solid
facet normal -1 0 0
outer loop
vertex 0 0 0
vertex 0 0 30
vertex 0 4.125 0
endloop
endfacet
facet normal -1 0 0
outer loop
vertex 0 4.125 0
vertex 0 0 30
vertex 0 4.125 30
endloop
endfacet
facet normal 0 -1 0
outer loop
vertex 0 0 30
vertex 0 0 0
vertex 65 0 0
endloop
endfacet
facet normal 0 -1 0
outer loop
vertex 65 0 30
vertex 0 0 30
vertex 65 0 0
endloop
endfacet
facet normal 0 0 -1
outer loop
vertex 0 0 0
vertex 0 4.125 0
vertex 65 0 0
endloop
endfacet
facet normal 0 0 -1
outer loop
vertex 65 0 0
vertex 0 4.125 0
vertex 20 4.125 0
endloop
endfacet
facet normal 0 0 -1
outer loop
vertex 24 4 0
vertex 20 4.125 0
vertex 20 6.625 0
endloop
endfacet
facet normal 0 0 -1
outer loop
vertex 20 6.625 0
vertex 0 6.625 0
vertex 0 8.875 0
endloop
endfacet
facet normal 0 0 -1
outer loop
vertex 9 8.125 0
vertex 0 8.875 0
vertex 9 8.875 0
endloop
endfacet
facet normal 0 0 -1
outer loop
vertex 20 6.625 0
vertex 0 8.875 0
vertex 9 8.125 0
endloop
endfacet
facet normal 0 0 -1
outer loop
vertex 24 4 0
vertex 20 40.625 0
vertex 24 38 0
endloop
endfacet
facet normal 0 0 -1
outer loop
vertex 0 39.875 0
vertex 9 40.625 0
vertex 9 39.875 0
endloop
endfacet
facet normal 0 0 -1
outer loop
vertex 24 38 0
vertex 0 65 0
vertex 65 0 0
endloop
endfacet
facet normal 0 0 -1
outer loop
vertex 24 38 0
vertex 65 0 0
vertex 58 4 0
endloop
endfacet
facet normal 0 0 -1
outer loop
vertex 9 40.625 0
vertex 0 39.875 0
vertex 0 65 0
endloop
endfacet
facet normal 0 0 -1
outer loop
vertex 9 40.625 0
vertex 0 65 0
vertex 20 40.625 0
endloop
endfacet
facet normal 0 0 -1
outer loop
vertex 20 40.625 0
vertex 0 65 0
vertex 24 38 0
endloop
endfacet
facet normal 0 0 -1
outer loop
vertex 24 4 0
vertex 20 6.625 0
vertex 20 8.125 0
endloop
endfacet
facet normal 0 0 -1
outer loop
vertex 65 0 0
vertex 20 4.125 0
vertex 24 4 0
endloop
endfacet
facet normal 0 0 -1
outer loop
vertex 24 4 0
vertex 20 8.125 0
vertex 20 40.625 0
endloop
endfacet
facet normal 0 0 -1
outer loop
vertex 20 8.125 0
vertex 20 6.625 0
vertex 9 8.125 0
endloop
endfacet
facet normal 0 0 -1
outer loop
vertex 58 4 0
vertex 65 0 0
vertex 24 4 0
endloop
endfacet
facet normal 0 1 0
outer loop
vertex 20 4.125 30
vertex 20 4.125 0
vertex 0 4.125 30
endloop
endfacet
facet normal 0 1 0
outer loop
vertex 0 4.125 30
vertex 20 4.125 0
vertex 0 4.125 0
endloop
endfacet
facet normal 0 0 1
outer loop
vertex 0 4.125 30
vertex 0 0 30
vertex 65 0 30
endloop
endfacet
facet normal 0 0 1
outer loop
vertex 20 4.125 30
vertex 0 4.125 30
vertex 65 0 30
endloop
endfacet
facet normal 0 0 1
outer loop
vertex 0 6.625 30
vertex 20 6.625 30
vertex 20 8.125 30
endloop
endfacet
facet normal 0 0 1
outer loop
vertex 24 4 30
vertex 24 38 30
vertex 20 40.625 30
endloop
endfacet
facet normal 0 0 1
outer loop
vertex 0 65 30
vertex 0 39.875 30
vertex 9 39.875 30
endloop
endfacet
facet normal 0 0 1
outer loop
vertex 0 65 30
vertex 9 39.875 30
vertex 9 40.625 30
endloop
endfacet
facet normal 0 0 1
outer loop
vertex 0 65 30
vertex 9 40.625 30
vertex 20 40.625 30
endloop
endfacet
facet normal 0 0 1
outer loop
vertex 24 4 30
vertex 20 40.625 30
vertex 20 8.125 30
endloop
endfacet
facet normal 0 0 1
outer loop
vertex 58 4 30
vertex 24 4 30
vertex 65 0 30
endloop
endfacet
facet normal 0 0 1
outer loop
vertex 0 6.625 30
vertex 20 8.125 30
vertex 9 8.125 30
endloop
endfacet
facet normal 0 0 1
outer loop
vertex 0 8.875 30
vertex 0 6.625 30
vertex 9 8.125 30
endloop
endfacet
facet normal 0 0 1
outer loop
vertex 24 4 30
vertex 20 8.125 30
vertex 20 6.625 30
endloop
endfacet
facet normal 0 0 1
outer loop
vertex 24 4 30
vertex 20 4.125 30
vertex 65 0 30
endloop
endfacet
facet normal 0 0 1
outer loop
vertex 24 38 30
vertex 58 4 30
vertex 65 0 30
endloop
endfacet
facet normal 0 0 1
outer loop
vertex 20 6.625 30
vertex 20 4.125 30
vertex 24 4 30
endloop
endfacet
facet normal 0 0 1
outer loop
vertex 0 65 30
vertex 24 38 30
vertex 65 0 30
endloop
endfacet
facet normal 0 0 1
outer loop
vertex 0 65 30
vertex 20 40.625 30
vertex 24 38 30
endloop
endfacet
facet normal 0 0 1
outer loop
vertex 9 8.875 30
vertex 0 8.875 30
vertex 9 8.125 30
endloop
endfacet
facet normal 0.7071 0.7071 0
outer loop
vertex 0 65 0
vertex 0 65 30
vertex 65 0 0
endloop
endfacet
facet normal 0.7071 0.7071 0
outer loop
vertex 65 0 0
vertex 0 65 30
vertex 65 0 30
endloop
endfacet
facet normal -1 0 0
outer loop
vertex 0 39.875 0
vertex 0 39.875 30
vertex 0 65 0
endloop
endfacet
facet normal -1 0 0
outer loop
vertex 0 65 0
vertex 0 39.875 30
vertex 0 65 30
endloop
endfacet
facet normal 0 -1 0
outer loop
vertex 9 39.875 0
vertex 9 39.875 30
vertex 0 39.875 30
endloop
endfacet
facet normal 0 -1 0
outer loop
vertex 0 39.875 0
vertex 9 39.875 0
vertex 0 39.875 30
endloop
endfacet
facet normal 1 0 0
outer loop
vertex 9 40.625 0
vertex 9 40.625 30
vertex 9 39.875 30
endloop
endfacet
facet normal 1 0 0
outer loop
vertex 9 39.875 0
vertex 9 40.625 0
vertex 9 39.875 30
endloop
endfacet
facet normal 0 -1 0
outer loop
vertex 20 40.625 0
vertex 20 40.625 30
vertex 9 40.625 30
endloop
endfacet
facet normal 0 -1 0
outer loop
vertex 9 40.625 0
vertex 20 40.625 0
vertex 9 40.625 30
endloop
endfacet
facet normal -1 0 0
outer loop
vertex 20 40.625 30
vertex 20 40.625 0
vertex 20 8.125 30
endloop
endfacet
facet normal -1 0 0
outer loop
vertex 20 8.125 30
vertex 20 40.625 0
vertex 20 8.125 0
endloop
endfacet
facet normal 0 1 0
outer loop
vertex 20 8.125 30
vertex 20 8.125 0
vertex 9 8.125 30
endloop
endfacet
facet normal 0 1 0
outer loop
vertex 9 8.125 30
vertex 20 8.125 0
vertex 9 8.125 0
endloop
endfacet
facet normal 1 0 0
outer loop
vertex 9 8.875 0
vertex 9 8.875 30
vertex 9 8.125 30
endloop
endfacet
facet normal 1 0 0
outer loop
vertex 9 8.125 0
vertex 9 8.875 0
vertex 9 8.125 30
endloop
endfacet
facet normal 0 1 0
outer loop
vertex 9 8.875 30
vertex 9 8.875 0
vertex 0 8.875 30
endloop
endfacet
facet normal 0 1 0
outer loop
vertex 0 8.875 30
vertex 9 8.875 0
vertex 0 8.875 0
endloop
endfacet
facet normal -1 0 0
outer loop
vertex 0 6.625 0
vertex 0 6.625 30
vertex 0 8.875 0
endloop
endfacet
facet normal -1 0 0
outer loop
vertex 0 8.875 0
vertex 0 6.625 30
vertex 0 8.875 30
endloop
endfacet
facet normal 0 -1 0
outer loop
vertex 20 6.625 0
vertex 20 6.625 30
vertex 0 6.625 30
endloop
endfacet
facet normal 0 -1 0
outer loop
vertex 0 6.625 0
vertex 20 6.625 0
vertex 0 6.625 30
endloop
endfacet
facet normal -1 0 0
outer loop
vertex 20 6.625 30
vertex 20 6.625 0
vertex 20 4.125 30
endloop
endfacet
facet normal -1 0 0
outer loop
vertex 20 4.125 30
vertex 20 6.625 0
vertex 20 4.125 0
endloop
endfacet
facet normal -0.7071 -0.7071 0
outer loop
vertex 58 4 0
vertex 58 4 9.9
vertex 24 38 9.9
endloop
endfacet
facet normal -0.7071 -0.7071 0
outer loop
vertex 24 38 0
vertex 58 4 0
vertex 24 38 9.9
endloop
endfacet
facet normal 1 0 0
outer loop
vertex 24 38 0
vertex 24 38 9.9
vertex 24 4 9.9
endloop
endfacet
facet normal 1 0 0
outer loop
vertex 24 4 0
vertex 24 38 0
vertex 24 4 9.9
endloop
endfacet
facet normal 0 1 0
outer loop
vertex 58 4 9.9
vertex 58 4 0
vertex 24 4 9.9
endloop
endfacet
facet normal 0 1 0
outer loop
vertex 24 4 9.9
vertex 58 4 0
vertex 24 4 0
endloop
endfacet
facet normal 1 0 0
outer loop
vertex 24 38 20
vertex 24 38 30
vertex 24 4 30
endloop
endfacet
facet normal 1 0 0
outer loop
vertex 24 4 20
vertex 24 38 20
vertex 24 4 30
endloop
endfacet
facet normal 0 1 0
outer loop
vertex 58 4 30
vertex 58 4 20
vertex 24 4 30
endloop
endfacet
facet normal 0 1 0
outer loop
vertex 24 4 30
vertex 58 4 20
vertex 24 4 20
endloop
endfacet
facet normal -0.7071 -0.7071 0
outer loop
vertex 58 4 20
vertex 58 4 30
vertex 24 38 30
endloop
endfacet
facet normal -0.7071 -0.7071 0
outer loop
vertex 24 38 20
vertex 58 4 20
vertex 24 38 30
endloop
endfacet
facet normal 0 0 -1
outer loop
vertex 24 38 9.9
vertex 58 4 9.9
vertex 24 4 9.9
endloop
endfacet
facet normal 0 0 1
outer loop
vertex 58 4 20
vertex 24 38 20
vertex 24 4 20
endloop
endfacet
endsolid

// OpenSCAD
epaisseur = 30;
petite_largeur = 31;
grande_largeur = 32.5;
hauteur = 30;

difference(){
	color("red") support();
	translate([hauteur*2/3,grande_largeur/4+grande_largeur/2,epaisseur/2]) rotate([0,0,90]) color("cyan") profile();
	translate([-hauteur*1/3,grande_largeur/4-4,0]) color("green") cube([hauteur,2.5,epaisseur*2]);
translate([24,4,-0.1]) creux();
translate([24,4,epaisseur*2/3]) creux();
}

module profile(){
	translate([0,5.5,0]) cube([grande_largeur,11,epaisseur*2], center=true);
	translate([0,14.5,0]) cube([petite_largeur,20,epaisseur*2], center=true);
}

module support ()
{
	demie_longueur = grande_largeur;
	longueur = demie_longueur*2;
	
  polyhedron
  (
		points=[[0,0,0], [0,longueur,0], [longueur,0,0], [longueur,0,epaisseur], 
[0,0,epaisseur], [0,longueur,epaisseur], [longueur,0,epaisseur]],  
		triangles=[[0,2,1],  // face avant
             [0,4,2],[4,3,2],  // face gauche
             [0,1,4],[4,1,5],  // face droite
             [3,4,5],  // face arrière
             [1,2,5],[2,3,5]]  // bas
  		);
}

module creux ()
{
	demie_longueur = 17;
	longueur = demie_longueur*2;
	
  polyhedron
  (
		points=[[0,0,0], [0,longueur,0], [longueur,0,0], [longueur,0,epaisseur/3], 
[0,0,epaisseur/3], [0,longueur,epaisseur/3], [longueur,0,epaisseur/3]],  
		triangles=[[0,2,1],  // face avant
             [0,4,2],[4,3,2],  // face gauche
             [0,1,4],[4,1,5],  // face droite
             [3,4,5],  // face arrière
             [1,2,5],[2,3,5]]  // bas
  		);
}
